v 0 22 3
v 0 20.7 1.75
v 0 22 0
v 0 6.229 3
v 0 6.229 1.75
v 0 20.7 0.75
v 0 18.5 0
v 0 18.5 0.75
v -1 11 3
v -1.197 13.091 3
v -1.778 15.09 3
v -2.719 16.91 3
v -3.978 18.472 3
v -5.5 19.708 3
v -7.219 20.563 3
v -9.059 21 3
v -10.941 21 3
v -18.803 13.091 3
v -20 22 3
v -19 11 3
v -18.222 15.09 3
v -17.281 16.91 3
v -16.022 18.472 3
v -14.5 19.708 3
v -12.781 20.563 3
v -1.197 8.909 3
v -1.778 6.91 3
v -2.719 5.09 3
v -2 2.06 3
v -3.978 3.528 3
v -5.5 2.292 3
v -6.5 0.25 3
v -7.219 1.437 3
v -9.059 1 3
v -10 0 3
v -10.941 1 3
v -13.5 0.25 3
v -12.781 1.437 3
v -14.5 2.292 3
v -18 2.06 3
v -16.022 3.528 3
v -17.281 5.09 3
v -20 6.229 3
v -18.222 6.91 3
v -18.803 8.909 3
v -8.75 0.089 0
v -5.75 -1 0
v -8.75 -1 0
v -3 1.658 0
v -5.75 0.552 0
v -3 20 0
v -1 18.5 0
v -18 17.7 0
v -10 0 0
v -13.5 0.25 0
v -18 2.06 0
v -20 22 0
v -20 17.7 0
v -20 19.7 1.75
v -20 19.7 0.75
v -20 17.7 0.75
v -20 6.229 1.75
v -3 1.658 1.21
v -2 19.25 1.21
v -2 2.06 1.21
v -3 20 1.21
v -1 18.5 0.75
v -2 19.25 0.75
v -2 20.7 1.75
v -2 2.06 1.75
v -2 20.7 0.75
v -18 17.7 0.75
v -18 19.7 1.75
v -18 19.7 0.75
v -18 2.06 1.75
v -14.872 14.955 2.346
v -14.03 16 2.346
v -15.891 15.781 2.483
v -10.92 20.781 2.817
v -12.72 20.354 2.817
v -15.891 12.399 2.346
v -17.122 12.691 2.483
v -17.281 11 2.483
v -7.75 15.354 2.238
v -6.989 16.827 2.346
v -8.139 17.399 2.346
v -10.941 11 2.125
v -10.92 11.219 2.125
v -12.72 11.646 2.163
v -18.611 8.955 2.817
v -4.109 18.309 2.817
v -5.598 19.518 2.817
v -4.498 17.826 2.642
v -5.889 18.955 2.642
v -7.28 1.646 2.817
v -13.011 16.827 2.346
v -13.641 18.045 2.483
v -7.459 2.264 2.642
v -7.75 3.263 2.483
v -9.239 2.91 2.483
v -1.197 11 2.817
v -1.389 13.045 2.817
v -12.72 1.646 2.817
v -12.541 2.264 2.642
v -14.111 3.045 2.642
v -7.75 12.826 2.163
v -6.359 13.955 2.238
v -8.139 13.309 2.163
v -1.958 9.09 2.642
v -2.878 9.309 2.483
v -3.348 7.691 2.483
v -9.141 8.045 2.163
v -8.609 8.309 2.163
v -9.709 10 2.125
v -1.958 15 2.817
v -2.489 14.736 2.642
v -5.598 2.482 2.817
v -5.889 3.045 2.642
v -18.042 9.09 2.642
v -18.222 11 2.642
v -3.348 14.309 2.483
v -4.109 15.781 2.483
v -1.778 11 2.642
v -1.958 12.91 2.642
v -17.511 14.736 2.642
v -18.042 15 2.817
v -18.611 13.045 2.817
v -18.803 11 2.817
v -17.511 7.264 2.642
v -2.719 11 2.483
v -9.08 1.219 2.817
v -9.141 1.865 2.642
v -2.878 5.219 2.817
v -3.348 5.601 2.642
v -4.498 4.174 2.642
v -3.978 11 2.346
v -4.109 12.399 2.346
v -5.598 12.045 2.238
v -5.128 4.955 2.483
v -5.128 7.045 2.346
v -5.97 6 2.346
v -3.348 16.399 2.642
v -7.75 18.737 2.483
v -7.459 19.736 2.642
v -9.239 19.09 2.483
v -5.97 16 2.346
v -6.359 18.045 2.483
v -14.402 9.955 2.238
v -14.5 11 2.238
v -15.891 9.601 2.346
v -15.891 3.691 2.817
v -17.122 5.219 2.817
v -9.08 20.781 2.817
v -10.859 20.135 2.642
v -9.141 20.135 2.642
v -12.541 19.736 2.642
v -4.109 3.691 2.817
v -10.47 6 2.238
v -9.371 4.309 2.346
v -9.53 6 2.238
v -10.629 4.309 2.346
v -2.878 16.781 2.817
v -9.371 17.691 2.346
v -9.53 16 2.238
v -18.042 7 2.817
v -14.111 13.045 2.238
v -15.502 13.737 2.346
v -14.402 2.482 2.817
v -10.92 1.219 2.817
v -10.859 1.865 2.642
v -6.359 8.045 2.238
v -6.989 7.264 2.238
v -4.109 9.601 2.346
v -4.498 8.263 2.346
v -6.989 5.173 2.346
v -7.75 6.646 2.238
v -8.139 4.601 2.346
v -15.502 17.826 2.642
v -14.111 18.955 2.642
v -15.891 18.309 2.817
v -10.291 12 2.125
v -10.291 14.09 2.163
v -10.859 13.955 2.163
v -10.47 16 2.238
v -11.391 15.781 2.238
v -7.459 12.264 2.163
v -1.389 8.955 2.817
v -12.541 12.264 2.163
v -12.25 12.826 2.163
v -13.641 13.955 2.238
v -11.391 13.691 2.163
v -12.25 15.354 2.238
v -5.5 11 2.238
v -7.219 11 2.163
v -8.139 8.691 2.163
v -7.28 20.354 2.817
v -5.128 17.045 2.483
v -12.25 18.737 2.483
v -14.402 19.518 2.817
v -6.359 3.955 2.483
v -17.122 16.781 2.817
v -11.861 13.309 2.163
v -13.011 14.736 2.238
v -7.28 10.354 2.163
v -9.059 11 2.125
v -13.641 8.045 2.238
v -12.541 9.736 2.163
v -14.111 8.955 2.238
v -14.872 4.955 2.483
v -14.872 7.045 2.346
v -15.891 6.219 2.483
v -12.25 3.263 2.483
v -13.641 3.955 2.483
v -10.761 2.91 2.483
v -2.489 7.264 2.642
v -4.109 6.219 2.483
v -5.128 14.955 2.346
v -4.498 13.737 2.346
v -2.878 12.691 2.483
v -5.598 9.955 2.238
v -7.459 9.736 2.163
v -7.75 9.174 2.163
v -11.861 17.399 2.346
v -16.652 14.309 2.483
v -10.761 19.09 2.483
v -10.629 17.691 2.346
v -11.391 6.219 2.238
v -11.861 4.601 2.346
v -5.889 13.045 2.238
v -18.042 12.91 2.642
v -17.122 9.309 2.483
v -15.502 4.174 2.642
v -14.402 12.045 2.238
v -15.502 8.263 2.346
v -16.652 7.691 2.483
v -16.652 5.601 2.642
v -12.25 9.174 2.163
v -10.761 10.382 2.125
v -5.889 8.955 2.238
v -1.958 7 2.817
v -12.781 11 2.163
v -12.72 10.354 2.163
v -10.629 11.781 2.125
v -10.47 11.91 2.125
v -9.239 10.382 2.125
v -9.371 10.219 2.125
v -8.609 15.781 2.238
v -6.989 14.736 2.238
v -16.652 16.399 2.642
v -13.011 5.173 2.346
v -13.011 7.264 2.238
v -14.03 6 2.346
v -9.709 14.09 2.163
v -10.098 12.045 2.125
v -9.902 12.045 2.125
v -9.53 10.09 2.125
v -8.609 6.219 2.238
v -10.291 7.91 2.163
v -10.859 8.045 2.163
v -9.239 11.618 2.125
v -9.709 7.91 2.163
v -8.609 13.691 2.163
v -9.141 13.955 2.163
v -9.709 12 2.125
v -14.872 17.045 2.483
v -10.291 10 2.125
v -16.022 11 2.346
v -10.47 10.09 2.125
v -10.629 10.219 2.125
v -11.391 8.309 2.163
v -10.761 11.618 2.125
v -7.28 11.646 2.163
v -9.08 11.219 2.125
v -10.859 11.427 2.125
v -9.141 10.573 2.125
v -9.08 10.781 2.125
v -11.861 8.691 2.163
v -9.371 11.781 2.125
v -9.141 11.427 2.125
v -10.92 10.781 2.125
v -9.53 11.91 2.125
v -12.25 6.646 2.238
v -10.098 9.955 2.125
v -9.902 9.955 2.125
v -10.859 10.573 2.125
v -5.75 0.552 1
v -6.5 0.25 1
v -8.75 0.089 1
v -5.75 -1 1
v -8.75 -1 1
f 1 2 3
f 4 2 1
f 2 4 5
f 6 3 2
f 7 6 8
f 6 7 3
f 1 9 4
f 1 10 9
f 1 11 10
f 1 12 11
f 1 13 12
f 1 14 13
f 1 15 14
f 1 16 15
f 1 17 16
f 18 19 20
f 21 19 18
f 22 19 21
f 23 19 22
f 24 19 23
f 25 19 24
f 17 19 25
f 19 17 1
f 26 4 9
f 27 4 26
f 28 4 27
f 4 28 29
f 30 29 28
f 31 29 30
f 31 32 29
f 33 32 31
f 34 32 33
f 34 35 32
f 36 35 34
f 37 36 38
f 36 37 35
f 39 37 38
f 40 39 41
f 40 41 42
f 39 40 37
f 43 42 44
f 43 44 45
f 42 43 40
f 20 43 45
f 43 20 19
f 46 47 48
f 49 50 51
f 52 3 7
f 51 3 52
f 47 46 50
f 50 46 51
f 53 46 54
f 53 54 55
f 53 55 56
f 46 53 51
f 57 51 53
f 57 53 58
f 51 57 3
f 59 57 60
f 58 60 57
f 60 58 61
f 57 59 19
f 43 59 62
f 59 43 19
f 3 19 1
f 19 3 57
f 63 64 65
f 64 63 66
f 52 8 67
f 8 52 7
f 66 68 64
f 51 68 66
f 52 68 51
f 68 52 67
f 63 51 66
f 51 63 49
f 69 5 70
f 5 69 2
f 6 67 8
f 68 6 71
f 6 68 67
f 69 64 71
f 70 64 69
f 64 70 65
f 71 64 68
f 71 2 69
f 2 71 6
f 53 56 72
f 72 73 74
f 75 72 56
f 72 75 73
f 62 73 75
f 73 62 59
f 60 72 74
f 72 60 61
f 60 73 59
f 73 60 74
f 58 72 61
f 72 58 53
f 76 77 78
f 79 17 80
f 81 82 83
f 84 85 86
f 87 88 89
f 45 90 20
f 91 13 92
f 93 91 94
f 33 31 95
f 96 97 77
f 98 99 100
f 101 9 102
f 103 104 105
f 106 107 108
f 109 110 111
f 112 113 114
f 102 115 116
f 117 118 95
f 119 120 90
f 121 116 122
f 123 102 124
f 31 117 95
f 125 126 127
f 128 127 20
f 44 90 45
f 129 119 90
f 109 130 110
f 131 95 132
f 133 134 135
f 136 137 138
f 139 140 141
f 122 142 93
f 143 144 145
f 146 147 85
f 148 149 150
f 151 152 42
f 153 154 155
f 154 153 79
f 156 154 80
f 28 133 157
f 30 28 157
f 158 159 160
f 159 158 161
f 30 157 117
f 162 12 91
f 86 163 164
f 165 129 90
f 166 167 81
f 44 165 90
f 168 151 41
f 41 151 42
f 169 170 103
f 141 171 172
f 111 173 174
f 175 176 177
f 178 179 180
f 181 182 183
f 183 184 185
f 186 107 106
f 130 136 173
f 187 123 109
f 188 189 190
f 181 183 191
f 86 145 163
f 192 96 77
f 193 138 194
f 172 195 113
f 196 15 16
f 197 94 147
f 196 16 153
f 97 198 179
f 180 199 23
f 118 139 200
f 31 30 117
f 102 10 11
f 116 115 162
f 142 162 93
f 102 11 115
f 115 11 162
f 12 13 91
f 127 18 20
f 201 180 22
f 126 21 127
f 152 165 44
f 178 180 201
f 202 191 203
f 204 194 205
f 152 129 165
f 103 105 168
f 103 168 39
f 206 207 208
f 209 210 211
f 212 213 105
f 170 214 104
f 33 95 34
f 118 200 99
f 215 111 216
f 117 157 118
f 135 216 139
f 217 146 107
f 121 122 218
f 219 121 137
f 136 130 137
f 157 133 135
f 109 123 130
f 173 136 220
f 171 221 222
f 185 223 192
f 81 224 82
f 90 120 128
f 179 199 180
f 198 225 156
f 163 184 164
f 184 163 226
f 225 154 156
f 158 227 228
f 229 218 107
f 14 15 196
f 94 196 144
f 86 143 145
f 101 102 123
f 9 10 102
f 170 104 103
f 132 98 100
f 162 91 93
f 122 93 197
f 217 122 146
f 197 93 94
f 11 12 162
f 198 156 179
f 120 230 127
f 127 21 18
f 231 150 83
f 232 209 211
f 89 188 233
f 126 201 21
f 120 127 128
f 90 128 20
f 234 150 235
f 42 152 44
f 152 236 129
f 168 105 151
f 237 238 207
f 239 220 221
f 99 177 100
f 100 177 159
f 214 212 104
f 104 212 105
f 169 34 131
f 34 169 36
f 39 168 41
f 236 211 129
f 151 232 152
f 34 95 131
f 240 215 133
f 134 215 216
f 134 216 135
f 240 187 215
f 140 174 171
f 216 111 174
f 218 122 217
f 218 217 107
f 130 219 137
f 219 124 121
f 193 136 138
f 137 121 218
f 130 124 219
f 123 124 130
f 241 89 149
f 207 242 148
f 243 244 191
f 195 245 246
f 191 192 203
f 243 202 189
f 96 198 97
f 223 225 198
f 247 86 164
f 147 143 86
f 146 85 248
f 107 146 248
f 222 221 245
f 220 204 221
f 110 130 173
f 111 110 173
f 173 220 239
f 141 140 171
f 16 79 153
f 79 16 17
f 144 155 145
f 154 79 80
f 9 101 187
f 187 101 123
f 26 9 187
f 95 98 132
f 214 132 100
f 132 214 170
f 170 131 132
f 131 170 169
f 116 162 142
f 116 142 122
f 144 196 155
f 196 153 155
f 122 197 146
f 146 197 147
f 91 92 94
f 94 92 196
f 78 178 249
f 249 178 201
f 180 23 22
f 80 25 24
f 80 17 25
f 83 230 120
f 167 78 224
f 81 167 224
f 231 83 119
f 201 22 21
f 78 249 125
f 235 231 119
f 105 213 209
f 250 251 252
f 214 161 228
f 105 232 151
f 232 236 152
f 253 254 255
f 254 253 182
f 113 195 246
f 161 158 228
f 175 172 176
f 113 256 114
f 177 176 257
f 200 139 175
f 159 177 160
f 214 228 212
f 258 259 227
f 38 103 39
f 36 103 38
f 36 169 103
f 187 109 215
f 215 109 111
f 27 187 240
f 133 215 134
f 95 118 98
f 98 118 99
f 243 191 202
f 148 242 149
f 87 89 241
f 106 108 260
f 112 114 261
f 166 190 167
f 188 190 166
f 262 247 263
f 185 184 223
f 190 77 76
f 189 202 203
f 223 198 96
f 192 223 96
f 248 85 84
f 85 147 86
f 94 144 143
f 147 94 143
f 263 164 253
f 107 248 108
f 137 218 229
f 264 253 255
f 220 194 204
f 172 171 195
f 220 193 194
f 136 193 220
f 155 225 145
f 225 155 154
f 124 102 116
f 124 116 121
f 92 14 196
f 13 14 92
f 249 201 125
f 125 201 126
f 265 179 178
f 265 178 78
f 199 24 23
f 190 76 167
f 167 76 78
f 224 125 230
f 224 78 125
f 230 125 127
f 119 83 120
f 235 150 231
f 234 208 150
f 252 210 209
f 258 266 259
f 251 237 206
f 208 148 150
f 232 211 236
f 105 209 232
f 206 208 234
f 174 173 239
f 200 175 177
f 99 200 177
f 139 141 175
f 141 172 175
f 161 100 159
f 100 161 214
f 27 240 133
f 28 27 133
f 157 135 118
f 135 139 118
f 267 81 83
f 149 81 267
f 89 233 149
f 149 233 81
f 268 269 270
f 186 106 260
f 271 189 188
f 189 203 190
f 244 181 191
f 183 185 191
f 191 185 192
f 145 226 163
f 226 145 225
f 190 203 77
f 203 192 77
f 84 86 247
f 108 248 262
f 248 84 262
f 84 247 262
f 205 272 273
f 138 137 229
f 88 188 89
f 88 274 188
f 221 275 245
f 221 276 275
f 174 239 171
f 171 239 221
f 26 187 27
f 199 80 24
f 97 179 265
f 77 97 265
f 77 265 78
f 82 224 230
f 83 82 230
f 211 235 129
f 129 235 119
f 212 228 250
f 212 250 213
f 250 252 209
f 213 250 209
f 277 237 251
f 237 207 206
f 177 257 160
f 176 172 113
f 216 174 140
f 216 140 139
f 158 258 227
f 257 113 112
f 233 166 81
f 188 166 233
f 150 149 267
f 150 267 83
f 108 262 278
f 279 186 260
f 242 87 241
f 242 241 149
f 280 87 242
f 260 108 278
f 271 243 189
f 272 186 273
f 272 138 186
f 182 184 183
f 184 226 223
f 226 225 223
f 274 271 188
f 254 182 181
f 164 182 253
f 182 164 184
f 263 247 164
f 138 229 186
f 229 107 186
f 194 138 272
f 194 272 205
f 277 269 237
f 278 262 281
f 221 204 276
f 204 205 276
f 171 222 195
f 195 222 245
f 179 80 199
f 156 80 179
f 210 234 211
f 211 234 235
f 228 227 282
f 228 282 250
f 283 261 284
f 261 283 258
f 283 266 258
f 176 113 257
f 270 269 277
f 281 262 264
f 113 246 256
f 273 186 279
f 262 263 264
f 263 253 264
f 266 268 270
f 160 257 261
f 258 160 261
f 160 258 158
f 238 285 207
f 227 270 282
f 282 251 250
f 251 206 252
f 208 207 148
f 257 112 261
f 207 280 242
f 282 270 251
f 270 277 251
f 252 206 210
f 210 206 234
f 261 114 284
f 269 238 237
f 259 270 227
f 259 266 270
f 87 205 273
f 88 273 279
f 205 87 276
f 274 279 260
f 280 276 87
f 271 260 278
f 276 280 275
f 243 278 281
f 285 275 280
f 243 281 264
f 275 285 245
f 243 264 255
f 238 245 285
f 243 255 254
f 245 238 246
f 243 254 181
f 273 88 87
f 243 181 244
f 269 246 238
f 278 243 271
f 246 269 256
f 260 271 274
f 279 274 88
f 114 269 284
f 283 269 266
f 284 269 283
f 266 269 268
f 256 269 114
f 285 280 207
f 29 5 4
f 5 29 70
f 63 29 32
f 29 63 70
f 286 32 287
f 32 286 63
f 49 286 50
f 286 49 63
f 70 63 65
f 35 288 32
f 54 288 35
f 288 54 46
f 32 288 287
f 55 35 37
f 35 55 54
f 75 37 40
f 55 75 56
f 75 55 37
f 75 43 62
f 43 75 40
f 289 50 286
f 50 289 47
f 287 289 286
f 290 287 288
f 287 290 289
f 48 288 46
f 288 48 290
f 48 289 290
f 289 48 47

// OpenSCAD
width = 20;
thickness = 3;
left_thickness = 1.79;
left_shelf_width = 3;
length = 15.75 + 6.25; //22.4; + 6.25
nub_top = 1.25;
nub_thickness = 1.0; 
nub_width = 2;
left_nub_inset = 1.25;
right_nub_inset = 2.25;
weird_inset = 3.5;
weird_inset2 = 2;

stub_offset = 5.75;
stub_width = 3;
stub_thickness = 1;
stub_length = 1;

module battery_cover() {
  module roundish_profile() {
    translate([0,0,-0.005])
    linear_extrude(thickness+0.01)
    polygon(points=[
      [0.01,       -1],
      [0.01,       6.25],
      
      [-2,         6.25-(2.87+1.32)],
      
      [-width/2+3.5, 0.25],
      [-width/2, 0],
      [-width/2-3.5, 0.25],
      
      [-width+2, 6.25-(2.87+1.32)],
      
      [-width-0.01,   6.25],
      [-width-0.01,   -1],
      [0.01,       -1],
    ]);
  }
  
  difference() {
    translate([-width, 0, 0])
      cube([width, length, thickness]);

    translate([0,0,-0.01])
    linear_extrude(thickness-left_thickness+0.01)
    polygon(points=[ 
      [0.01,              -0.01],
      [-left_shelf_width, -0.01],
      [-left_shelf_width, length - weird_inset2],
      [-1,                length - weird_inset],
      [0.01,              length - weird_inset],
      [0.01,              -0.01],
    ]);

    translate([-nub_width, -0.05, thickness-nub_top-nub_thickness])
      cube([nub_width+0.1, length-left_nub_inset, nub_thickness]);
    translate([-width-0.1, -0.05, thickness-nub_top-nub_thickness])
      cube([nub_width+0.1, length-right_nub_inset, nub_thickness]);
    translate([-width-0.1, -0.05, -0.01])
      cube([nub_width+0.1, length-right_nub_inset-nub_width, nub_thickness]);

    translate([-10, length/2, thickness])
    resize([width-2,length-2,1.75]) sphere(20);
    
    roundish_profile();
  }
  
  translate([-stub_width-stub_offset, -stub_length, 0])
  cube([stub_width, stub_length + 5, stub_thickness]);
}

battery_cover();
